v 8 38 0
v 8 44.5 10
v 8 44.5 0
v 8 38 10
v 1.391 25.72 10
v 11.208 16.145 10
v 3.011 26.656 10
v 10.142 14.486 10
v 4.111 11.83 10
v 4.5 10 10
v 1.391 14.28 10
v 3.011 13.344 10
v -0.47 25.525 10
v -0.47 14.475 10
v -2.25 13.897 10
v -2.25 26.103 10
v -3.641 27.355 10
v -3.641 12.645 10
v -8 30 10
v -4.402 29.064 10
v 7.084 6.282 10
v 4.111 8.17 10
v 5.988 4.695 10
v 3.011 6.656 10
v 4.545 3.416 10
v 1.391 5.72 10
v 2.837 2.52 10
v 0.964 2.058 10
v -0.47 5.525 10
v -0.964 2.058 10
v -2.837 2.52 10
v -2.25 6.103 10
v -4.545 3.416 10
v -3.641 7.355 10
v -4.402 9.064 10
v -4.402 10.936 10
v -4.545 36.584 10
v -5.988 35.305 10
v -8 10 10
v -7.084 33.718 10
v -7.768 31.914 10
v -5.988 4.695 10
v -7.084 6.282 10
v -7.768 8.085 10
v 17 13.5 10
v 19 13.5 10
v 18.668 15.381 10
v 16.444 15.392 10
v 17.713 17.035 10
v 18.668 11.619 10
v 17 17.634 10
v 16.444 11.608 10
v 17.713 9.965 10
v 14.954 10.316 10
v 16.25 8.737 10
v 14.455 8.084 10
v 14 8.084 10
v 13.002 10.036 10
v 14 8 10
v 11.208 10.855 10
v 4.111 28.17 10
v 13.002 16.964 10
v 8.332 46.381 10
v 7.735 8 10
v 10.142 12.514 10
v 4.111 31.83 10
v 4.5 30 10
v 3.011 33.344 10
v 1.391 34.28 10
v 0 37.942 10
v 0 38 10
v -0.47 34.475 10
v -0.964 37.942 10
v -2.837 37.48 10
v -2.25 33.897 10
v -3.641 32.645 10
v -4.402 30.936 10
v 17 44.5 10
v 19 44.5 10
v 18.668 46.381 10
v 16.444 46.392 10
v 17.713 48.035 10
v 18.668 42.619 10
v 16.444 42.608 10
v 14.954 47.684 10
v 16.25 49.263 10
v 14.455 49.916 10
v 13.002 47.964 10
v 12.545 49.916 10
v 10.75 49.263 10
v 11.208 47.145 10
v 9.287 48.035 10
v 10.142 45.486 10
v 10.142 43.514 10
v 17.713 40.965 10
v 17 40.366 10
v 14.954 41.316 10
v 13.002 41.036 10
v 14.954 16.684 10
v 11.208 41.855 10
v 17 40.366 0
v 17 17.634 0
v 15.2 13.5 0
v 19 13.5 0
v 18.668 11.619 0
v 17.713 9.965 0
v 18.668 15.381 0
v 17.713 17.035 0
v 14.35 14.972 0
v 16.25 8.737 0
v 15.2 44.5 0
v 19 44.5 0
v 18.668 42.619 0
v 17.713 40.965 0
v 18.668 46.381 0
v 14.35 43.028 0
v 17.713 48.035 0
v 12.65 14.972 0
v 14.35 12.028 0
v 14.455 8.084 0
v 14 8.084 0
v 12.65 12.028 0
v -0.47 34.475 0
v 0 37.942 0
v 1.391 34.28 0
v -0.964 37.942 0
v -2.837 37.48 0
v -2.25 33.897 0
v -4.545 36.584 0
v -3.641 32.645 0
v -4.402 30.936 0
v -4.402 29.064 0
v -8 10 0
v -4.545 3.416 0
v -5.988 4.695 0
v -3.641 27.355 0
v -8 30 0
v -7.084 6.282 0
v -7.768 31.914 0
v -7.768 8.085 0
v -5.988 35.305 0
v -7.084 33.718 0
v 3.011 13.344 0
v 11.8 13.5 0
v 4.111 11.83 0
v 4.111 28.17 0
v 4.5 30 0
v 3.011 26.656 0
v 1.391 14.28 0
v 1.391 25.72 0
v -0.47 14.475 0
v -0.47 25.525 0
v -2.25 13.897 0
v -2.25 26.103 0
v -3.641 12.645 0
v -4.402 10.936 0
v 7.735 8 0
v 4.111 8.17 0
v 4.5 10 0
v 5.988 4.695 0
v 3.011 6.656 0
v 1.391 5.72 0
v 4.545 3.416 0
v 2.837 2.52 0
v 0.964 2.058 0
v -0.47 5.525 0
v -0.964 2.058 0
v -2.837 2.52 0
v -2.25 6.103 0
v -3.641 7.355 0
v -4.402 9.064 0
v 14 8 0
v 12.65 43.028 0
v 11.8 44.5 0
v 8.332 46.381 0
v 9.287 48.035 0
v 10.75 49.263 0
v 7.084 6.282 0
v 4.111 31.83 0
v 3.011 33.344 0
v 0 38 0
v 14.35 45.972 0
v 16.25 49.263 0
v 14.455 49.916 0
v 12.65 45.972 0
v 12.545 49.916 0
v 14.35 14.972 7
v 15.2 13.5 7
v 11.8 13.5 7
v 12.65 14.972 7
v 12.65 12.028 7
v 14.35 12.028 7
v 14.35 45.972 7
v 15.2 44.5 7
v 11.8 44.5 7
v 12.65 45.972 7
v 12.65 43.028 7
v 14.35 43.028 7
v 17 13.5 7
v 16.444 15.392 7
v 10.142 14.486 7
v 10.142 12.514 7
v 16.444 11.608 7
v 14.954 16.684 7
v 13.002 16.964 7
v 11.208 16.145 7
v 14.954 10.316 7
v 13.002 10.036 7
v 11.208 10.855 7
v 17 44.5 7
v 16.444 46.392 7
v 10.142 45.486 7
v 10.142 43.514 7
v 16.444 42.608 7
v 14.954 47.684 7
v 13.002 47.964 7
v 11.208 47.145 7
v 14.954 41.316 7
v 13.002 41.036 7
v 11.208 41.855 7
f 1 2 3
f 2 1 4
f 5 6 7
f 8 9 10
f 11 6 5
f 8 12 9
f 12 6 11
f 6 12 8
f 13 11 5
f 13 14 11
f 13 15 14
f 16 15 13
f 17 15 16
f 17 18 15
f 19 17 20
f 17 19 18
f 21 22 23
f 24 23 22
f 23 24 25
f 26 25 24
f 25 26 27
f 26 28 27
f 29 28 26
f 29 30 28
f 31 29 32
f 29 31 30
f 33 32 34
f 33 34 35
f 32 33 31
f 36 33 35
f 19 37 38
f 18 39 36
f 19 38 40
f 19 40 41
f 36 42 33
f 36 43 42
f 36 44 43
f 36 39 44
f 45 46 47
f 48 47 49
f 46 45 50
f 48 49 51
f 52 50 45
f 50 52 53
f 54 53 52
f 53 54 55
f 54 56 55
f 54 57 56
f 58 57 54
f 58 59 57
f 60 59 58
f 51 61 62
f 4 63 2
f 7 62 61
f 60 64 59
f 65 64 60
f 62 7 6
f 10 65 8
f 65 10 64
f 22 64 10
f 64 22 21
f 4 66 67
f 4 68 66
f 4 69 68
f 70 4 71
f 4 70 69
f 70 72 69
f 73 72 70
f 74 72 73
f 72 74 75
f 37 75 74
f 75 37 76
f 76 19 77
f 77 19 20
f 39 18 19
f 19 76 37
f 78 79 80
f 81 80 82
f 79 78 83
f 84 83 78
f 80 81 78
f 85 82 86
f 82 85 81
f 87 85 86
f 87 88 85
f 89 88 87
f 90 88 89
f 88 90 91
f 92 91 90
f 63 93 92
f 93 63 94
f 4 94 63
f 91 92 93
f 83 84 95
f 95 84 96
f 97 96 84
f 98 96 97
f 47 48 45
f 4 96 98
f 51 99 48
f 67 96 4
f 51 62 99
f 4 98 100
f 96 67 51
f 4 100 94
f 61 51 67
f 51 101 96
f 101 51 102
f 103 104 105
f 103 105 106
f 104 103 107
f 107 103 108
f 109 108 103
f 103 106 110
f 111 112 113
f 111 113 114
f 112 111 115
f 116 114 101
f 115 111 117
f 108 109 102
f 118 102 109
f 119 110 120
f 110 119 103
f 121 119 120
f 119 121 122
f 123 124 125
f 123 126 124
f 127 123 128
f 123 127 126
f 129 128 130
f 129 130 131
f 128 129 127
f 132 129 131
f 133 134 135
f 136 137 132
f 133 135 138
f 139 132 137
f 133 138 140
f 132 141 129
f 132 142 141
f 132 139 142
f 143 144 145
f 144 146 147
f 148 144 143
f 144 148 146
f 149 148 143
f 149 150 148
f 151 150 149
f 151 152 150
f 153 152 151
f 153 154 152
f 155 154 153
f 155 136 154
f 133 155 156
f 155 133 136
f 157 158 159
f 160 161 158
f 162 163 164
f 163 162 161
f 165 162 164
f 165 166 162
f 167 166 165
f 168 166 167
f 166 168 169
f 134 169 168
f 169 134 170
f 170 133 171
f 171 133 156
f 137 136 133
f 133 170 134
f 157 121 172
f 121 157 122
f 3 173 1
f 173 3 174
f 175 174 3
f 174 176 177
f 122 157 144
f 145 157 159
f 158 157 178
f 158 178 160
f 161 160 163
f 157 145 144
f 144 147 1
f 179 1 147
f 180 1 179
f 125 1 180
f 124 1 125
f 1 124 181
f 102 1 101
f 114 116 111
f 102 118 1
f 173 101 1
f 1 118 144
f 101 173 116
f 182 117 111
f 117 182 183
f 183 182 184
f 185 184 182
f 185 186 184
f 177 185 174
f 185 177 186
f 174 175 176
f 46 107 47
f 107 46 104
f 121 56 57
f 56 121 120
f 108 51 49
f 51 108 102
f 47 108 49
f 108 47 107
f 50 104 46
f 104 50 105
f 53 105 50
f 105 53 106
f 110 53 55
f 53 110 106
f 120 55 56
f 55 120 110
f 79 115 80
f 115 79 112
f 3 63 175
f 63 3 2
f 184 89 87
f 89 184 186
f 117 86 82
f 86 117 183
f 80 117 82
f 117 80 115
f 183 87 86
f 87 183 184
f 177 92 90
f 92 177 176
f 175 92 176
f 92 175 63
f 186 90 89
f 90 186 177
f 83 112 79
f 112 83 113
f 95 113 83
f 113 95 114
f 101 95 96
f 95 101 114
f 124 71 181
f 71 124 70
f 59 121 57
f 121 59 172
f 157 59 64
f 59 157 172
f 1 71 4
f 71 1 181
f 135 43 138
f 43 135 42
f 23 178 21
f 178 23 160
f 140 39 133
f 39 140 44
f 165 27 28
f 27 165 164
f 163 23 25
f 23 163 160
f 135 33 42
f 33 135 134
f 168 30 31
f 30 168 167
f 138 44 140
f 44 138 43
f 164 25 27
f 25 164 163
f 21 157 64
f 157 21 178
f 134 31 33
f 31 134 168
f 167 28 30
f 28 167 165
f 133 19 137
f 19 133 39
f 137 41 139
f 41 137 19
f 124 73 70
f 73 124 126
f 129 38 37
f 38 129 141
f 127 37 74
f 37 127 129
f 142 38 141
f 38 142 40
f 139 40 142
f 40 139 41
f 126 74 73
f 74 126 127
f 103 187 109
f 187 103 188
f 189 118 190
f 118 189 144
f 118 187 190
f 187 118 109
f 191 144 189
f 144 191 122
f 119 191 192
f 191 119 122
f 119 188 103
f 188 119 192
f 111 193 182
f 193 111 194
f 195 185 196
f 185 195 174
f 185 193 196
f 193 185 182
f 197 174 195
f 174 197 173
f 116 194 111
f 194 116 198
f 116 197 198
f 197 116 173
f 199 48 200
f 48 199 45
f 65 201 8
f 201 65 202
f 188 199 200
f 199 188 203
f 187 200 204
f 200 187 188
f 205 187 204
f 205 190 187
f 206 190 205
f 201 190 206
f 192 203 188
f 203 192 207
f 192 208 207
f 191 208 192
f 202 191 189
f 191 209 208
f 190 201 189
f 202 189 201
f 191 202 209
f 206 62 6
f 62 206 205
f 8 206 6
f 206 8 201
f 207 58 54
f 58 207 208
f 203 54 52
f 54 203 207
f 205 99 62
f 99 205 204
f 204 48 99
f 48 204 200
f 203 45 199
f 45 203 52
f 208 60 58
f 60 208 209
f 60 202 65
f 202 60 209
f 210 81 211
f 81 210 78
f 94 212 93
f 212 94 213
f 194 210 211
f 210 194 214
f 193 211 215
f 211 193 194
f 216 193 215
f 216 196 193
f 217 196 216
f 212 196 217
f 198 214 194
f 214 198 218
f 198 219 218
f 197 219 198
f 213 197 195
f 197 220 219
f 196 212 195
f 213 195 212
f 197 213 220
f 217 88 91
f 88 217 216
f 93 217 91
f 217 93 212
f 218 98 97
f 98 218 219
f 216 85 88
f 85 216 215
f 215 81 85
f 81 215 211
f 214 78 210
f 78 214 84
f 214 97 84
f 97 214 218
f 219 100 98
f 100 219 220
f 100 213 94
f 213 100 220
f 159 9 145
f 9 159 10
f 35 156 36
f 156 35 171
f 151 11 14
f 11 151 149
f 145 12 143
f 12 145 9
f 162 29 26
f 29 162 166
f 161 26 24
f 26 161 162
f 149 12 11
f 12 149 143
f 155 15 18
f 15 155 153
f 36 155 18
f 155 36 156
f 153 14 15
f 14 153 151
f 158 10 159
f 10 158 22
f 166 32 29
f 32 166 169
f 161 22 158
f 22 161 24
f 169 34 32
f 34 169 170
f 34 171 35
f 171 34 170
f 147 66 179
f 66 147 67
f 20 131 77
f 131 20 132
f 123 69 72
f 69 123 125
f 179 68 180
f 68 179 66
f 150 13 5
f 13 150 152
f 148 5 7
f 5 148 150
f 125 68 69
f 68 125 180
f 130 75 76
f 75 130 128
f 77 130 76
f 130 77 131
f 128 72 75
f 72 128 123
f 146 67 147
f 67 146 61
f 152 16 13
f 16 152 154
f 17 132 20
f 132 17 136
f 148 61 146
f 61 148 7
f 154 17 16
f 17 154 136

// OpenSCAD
// PRUSA iteration3
// Y motor mount
// GNU GPL v3
// Josef Průša <iam@josefprusa.cz> and contributors
// http://www.reprap.org/wiki/Prusa_Mendel
// http://prusamendel.org

//include <configuration.scad>

module y_motor_base() {
 // Motor holding part
 translate([29,-21+50,0]) {
  translate([-21+4.5,0,5]) cube(size=[9,31,10], center=true);
  translate([-15.5,-15.5,0]) cylinder(h=10, r=5.5);
  translate([-15.5,+15.5,0]) cylinder(h=10, r=5.5);
  // Joins motor holder and rod plate
  translate([-29,-21,0]) cube(size=[14,30,10]);
 }
 // Front holding part
 translate([0,10,0]) cylinder(h=10, r=8);
 translate([0,20,5])cube(size=[16,20,10], center=true);
 translate([0,30,0])cylinder(h=10, r=8);
}

module y_motor_holes() {
 translate([29,-21+50,0]) {
  // Screw head holes
  translate([-15.5,-15.5,-1]) cylinder(h=10, r=1.7);
  translate([-15.5,+15.5,-1]) cylinder(h=10, r=1.7);
  // Screw holes
  translate([-15.5,-15.5,7]) cylinder(h=7, r=3.5);
  translate([-15.5,+15.5,7]) cylinder(h=7, r=3.5);
 }
 translate([0,10,-1]) cylinder(h=12, r=4.5);
 translate([0,30,-1]) cylinder(h=12, r=4.5);
}

// Final part
module y_motor() {
 difference() {
  y_motor_base();
  y_motor_holes();
 }
}

y_motor();
